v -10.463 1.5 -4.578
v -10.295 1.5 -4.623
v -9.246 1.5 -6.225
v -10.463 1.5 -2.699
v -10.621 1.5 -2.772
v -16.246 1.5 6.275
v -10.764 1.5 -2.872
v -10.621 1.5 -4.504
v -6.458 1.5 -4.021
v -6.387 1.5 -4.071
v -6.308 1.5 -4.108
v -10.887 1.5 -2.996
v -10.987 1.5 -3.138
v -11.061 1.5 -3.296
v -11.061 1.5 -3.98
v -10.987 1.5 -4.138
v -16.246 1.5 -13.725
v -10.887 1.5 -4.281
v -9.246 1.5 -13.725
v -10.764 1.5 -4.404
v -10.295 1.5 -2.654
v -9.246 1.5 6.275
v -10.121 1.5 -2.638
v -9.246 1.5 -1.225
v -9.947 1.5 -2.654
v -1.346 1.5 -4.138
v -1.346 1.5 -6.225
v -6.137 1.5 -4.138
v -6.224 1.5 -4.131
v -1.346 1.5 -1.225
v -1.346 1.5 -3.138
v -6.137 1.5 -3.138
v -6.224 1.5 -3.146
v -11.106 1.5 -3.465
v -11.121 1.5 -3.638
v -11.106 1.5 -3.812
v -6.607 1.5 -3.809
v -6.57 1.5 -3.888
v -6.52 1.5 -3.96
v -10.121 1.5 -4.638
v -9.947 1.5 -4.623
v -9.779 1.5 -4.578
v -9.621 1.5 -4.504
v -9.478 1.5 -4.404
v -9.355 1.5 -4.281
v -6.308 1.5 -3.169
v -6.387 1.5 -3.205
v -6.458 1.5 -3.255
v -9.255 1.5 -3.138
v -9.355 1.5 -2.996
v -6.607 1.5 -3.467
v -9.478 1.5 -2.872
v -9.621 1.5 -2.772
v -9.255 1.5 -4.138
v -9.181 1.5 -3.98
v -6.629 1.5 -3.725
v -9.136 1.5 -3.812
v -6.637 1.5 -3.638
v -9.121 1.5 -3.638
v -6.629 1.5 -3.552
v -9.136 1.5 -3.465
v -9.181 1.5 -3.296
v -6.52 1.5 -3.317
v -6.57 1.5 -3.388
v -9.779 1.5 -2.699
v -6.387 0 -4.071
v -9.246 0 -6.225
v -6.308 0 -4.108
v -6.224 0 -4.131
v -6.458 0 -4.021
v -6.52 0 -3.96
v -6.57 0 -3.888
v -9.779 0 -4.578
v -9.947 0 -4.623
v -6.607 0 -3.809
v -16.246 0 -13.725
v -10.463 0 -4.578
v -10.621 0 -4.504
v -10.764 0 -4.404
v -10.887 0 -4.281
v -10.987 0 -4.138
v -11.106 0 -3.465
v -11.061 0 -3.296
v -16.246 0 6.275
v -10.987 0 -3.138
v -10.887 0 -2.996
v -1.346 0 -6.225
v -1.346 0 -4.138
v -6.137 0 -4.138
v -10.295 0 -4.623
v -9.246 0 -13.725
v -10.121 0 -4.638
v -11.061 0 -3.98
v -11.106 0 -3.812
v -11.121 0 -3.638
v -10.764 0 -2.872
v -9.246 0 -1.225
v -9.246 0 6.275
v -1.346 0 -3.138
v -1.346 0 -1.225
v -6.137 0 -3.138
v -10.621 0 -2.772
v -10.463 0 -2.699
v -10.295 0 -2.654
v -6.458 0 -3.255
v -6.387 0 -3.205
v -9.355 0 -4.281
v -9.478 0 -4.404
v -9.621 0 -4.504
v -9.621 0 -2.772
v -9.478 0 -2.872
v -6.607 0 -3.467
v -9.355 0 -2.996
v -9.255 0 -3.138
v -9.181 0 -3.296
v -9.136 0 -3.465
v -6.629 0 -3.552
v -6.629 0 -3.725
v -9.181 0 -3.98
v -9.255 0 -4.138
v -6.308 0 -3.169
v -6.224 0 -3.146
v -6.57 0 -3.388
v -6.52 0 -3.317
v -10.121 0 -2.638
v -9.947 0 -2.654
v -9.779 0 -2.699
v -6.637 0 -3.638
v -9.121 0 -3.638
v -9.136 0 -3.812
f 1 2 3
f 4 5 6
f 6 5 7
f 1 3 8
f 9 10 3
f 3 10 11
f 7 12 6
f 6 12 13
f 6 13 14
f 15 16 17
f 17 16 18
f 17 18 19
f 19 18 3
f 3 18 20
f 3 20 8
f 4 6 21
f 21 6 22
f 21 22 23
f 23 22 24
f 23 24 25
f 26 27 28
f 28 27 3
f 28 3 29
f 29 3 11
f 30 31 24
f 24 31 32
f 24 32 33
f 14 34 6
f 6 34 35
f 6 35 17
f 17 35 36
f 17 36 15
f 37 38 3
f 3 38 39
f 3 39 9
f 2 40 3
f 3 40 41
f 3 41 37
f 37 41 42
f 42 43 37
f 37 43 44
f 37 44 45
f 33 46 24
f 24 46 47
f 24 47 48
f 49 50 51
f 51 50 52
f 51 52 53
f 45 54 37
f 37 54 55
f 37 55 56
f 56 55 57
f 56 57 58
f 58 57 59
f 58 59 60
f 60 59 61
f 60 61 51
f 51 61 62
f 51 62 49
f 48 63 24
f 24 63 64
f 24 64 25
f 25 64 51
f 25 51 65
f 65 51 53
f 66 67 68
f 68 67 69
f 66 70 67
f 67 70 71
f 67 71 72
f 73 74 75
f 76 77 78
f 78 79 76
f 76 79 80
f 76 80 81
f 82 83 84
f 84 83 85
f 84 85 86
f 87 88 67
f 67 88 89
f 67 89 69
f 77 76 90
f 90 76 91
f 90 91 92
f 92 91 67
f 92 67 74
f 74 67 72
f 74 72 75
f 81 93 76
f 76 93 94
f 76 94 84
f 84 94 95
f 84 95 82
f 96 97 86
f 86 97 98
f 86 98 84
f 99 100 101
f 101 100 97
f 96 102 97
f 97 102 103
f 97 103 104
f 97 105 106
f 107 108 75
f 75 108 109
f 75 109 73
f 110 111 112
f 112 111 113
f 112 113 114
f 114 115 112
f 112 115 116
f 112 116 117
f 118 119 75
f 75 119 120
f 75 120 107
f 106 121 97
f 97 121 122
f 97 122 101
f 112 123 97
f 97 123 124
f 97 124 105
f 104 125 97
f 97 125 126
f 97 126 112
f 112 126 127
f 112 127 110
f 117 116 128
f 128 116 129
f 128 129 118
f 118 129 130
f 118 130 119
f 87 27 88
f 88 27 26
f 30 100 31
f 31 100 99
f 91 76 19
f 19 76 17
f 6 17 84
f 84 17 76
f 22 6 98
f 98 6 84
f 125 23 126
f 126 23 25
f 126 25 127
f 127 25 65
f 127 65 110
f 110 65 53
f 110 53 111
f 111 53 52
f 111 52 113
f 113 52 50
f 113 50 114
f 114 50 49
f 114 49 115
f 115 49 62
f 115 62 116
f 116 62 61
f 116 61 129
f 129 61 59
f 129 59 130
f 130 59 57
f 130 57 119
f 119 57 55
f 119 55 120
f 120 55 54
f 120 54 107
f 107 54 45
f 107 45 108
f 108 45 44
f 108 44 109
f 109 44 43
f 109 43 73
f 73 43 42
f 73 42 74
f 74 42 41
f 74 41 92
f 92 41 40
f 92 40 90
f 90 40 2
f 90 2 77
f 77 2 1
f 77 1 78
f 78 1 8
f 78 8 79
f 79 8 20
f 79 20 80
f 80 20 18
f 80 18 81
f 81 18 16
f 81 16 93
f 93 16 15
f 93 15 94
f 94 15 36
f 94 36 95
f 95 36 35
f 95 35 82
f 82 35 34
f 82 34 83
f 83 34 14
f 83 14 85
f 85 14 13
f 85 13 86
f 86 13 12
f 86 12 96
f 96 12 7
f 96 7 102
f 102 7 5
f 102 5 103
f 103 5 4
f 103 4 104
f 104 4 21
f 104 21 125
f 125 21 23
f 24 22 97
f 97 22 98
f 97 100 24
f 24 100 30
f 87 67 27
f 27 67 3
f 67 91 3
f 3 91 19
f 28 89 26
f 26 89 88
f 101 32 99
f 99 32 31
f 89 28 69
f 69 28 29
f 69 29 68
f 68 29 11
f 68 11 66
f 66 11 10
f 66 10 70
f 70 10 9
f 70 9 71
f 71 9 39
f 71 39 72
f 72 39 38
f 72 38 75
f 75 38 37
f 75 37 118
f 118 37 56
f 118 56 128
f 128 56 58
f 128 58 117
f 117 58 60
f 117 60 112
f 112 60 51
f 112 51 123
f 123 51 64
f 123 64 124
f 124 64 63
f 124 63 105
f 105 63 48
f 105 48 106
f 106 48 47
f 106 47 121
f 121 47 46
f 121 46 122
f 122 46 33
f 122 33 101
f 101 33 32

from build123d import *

# Parameters (mm, degrees)
SKETCH1_W           = 15
SKETCH1_H           = 20
BOSS_EXTRUDE1_DEPTH = 1.5
SKETCH2_R           = 1
CUT_EXTRUDE1_DEPTH  = 1.5
CUT_EXTRUDE2_DEPTH  = 1.5
CUT_EXTRUDE3_DEPTH  = 1.5


with BuildPart() as part:
    # Sketch1 → Boss-Extrude1 (new body)
    with BuildSketch(Plane(origin=(0, 0, 0), x_dir=(1, 0, 0), z_dir=(0, 1, 0))):
        with Locations((-8.746418338, 3.724928367)):
            Rectangle(SKETCH1_W, SKETCH1_H)
    extrude(amount=BOSS_EXTRUDE1_DEPTH)

    # Sketch2 → Cut-Extrude1 (cut)
    with BuildSketch(Plane(origin=(0, 1.5, 0), x_dir=(1, 0, 0), z_dir=(0, 1, 0))):
        with Locations((-10.120989787, 3.638381578)):
            Circle(SKETCH2_R)
    extrude(amount=-CUT_EXTRUDE1_DEPTH, mode=Mode.SUBTRACT)

    # Sketch3 → Cut-Extrude2 (cut)
    with BuildSketch(Plane(origin=(0, 1.5, 0), x_dir=(1, 0, 0), z_dir=(0, 1, 0))):
        Polygon((-9.246418338, -6.275071633), (-9.246418338, -7.482454252), (1.99298081, -6.056034197), (1.99298081, 15.151348422), (-9.246418338, 13.724928367), (-9.246418338, 6.224928381), (-1.346418338, 6.224928381), (-1.346418338, 1.224928353), (-9.246418338, 1.224928353), align=None)
    extrude(amount=-CUT_EXTRUDE2_DEPTH, mode=Mode.SUBTRACT)

    # Sketch4 → Cut-Extrude3 (cut)
    with BuildSketch(Plane(origin=(0, 1.5, 0), x_dir=(1, 0, 0), z_dir=(0, 1, 0))):
        with BuildLine():
            Line((-6.136798849, 4.138381578), (-0.966349773, 4.138381578))
            Line((-0.966349773, 4.138381578), (-0.966349773, 3.138381578))
            Line((-0.966349773, 3.138381578), (-6.136798849, 3.138381578))
            ThreePointArc((-6.136798849, 3.138381578), (-6.636798849, 3.638381578), (-6.136798849, 4.138381578))
        make_face()
    extrude(amount=-CUT_EXTRUDE3_DEPTH, mode=Mode.SUBTRACT)


solid = part.part
